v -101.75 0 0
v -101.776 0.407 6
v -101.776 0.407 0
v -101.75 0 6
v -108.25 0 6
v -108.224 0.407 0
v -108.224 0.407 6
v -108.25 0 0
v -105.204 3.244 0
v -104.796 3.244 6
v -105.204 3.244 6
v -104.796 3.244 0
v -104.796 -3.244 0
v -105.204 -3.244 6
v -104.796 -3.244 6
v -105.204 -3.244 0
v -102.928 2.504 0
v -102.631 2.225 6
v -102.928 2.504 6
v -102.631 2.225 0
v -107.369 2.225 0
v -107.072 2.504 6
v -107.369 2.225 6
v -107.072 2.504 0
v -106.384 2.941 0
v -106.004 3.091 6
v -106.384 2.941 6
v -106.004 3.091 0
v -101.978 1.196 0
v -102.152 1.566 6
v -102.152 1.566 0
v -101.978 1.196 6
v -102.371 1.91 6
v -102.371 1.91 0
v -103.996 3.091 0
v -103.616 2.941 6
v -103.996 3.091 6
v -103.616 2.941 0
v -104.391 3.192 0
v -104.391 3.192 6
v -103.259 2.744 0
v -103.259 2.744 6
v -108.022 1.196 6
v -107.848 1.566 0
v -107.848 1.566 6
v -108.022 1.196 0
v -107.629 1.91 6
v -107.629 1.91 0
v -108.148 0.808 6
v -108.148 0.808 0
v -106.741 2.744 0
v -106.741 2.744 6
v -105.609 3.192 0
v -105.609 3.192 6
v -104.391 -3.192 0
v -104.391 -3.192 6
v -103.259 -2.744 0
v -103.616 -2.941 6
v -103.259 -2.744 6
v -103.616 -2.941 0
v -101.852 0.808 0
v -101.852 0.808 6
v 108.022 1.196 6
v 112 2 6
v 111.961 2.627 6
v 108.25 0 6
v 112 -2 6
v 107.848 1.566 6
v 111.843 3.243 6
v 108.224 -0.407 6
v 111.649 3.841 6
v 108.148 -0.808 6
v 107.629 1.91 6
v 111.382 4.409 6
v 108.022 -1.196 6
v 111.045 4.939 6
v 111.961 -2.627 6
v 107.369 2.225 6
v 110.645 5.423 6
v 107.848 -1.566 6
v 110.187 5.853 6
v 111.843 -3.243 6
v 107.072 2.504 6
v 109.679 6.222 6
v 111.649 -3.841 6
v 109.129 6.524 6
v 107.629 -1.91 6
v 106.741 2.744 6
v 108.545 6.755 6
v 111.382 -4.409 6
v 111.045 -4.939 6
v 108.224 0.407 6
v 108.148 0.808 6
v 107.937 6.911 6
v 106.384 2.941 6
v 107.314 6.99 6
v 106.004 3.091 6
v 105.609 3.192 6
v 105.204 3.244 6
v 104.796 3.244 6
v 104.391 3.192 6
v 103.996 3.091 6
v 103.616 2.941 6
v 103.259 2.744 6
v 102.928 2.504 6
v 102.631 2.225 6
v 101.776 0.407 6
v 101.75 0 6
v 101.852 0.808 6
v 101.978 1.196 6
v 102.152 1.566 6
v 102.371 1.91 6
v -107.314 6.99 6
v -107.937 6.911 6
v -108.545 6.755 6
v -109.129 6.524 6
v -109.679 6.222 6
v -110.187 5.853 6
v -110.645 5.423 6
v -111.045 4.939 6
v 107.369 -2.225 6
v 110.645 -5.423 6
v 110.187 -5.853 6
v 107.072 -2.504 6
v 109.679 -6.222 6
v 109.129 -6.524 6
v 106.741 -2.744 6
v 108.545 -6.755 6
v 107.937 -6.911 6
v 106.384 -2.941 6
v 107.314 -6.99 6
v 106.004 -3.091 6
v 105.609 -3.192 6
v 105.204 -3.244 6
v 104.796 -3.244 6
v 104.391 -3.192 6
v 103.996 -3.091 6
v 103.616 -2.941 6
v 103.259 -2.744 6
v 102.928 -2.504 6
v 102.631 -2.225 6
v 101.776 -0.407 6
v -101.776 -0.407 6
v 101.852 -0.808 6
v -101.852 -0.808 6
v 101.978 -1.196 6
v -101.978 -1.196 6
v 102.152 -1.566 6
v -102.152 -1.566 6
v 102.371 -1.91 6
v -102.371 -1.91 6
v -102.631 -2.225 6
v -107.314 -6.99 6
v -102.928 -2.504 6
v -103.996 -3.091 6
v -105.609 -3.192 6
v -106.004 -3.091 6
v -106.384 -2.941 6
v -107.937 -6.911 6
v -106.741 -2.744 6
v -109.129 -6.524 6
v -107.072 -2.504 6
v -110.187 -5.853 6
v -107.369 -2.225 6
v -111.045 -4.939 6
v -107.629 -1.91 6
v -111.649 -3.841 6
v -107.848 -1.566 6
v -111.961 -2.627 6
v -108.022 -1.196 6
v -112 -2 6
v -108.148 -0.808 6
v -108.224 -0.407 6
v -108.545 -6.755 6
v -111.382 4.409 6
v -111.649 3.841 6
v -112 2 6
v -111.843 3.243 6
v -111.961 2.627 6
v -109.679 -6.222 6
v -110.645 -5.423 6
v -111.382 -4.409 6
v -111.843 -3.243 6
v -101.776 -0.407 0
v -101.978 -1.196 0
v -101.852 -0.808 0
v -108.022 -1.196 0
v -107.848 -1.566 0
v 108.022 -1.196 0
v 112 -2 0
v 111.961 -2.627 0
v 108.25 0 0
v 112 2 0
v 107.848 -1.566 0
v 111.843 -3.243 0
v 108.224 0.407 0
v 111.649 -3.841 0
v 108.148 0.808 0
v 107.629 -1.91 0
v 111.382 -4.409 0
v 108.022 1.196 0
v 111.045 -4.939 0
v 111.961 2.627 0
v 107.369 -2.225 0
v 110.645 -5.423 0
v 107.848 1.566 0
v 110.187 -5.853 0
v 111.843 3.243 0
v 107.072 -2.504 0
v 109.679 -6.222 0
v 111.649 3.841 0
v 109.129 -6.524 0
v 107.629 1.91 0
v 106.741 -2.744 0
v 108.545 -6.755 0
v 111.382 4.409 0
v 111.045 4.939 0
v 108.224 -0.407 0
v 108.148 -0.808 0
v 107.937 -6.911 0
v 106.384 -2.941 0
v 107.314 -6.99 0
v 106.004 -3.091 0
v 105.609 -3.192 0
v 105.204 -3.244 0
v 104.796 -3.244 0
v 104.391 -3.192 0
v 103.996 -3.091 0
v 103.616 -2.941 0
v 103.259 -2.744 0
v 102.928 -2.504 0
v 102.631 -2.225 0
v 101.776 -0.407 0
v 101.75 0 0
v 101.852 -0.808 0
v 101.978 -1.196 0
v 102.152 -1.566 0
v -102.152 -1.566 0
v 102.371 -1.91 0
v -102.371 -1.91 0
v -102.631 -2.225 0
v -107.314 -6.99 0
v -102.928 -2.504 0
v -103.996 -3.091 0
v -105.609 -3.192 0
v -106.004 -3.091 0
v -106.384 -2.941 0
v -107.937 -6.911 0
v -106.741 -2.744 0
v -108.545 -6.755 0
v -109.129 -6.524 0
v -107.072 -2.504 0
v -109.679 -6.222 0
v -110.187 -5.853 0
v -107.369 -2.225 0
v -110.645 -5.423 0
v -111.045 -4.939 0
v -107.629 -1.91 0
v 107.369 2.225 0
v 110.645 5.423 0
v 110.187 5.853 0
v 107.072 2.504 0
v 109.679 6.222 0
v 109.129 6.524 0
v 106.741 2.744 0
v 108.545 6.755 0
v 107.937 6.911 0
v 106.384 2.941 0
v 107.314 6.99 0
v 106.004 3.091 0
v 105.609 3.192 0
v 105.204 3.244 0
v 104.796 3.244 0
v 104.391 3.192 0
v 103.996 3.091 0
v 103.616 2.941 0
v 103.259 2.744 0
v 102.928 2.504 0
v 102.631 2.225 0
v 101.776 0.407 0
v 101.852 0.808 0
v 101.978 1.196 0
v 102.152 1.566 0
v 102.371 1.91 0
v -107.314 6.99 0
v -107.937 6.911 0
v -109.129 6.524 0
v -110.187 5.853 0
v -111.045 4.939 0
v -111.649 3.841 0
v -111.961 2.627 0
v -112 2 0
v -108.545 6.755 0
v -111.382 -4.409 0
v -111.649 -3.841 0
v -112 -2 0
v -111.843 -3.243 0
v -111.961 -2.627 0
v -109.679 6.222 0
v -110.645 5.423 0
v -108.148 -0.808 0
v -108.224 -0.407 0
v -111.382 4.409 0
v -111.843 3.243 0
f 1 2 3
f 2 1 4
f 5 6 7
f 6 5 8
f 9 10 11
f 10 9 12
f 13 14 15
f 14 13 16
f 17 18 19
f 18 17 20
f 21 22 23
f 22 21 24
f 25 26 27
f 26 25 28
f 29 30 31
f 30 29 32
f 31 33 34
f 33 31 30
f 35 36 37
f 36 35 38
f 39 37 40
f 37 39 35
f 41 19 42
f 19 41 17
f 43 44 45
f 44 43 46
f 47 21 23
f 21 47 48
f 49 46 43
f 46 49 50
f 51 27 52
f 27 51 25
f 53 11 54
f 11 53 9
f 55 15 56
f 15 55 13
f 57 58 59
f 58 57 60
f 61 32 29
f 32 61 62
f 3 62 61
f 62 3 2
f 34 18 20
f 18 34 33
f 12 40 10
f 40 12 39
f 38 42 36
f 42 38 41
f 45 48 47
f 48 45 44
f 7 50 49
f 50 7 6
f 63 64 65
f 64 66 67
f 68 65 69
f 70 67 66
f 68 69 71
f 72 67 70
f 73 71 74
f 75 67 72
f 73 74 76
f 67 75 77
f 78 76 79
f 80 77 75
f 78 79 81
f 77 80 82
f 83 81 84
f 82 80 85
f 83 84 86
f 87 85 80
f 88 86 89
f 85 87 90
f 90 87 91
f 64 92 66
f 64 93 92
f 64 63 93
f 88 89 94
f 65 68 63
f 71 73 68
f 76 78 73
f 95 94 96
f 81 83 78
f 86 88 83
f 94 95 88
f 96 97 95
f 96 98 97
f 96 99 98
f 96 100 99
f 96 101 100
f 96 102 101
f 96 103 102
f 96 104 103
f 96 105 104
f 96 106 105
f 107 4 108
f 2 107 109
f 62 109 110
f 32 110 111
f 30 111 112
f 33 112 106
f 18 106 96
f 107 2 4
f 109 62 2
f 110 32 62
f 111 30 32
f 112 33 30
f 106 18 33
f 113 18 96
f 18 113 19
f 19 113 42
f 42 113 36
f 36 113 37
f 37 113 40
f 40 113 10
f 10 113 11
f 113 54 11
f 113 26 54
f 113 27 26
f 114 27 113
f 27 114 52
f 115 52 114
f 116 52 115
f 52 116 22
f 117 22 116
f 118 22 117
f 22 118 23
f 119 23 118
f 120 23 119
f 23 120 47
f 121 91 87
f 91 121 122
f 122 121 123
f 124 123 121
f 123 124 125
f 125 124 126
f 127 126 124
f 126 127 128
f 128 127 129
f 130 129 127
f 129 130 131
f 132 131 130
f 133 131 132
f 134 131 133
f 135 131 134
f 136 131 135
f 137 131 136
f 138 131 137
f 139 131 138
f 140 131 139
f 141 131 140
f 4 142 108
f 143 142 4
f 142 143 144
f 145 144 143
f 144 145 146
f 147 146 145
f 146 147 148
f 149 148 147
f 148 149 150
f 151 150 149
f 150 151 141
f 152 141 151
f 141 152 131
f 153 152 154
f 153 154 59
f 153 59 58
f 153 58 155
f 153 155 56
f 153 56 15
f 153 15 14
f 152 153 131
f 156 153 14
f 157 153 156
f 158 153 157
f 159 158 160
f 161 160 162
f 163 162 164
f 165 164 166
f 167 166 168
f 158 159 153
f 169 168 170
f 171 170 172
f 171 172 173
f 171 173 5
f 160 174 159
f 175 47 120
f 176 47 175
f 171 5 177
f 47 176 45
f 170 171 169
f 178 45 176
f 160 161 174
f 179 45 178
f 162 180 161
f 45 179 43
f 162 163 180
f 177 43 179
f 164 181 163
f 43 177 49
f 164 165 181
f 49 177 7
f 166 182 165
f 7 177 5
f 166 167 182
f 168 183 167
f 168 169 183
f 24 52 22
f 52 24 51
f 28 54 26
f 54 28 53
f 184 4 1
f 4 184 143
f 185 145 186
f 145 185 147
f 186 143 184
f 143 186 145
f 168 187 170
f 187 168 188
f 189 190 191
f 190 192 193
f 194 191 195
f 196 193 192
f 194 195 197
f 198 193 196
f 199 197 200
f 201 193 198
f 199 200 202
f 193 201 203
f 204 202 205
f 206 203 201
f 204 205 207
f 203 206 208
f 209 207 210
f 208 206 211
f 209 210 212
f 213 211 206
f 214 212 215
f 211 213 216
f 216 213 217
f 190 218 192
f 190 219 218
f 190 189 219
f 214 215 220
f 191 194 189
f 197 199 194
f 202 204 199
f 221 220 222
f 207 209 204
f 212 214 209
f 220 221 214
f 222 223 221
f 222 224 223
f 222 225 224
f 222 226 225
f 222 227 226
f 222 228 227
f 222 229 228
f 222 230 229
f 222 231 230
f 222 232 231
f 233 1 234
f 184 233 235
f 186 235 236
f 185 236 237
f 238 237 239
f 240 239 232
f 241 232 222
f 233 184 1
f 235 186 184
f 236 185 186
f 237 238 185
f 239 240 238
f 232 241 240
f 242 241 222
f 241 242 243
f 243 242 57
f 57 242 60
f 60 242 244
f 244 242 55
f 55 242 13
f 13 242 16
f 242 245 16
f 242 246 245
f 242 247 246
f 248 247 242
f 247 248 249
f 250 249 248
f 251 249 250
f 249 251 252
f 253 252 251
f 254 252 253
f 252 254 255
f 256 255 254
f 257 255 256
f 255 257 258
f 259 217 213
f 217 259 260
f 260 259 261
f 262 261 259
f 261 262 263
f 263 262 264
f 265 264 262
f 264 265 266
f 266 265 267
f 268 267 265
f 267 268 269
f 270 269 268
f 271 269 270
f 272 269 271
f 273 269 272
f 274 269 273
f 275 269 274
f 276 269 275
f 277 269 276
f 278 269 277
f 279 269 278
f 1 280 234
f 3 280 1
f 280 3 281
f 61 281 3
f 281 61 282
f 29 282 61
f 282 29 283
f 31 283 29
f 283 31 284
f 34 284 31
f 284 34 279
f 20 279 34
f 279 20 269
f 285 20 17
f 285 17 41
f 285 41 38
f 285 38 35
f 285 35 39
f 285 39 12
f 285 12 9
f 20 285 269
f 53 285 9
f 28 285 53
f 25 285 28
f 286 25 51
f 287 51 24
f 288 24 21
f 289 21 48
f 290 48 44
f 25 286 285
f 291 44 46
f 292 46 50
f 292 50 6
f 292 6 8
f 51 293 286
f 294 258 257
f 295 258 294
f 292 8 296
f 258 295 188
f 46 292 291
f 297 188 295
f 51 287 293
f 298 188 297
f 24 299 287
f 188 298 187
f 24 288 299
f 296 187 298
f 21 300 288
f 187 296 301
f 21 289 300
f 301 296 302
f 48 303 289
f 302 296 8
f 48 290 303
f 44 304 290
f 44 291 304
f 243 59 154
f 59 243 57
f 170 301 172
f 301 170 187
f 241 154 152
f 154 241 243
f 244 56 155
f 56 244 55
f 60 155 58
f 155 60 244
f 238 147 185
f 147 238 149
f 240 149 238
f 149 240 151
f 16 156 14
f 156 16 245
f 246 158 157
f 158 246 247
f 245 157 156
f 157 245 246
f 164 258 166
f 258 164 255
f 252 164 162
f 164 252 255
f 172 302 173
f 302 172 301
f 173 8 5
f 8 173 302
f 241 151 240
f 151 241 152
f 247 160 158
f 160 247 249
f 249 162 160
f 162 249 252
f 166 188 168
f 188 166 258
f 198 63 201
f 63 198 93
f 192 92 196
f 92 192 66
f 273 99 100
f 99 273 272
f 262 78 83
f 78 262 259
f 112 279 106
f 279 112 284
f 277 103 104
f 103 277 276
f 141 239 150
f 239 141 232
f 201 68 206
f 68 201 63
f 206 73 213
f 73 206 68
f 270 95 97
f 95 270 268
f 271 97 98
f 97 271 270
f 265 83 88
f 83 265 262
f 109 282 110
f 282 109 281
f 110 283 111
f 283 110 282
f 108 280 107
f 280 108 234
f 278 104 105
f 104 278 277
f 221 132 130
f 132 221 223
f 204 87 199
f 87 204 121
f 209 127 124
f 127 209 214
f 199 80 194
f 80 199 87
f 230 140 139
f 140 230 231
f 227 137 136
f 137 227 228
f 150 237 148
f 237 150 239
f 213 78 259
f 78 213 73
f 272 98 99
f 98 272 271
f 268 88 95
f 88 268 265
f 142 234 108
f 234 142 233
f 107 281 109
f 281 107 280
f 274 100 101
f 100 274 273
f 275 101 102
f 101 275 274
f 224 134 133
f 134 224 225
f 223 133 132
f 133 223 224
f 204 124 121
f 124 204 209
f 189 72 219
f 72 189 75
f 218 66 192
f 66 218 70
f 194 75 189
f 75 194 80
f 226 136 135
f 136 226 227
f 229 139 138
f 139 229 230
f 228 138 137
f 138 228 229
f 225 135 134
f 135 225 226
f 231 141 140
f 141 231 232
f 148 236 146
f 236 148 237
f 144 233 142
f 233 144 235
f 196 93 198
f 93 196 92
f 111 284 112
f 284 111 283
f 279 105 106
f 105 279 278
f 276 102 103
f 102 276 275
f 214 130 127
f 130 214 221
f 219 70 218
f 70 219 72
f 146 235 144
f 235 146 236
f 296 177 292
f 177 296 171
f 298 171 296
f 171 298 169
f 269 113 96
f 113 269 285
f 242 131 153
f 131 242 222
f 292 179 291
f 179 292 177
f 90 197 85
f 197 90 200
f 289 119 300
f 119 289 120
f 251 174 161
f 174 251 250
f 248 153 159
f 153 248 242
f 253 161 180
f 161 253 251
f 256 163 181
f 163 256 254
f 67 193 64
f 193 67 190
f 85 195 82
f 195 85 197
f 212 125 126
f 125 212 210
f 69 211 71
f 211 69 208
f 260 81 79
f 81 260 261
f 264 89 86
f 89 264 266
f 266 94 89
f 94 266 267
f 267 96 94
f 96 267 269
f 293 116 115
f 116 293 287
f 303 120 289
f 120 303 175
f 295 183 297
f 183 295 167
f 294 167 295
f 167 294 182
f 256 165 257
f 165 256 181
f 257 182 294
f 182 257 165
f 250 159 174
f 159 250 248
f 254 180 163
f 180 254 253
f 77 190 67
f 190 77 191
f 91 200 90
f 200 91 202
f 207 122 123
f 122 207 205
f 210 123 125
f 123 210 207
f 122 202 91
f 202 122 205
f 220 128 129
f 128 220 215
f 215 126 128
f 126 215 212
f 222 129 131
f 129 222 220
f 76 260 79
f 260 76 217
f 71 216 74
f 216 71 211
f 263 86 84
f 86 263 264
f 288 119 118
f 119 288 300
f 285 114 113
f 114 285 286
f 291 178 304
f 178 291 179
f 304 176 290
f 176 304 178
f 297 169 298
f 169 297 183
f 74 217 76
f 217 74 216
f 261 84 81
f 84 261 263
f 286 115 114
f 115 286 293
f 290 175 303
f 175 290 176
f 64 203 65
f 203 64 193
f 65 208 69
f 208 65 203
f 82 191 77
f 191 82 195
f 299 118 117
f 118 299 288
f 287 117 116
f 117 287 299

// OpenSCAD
$fn = 50;


difference() {
	union() {
		hull() {
			translate(v = [-107.0000000000, 2.0000000000, 0]) {
				cylinder(h = 6, r = 5);
			}
			translate(v = [107.0000000000, 2.0000000000, 0]) {
				cylinder(h = 6, r = 5);
			}
			translate(v = [-107.0000000000, -2.0000000000, 0]) {
				cylinder(h = 6, r = 5);
			}
			translate(v = [107.0000000000, -2.0000000000, 0]) {
				cylinder(h = 6, r = 5);
			}
		}
	}
	union() {
		translate(v = [-105.0000000000, 0.0000000000, 0]) {
			cylinder(h = 6, r = 3.2500000000);
		}
		translate(v = [105.0000000000, 0.0000000000, 0]) {
			cylinder(h = 6, r = 3.2500000000);
		}
		translate(v = [-105.0000000000, 0.0000000000, 0]) {
			cylinder(h = 6, r = 1.8000000000);
		}
		translate(v = [105.0000000000, 0.0000000000, 0]) {
			cylinder(h = 6, r = 1.8000000000);
		}
		translate(v = [-105.0000000000, 0.0000000000, 0]) {
			cylinder(h = 6, r = 1.8000000000);
		}
		translate(v = [105.0000000000, 0.0000000000, 0]) {
			cylinder(h = 6, r = 1.8000000000);
		}
		translate(v = [-105.0000000000, 0.0000000000, 0]) {
			cylinder(h = 6, r = 1.8000000000);
		}
		translate(v = [105.0000000000, 0.0000000000, 0]) {
			cylinder(h = 6, r = 1.8000000000);
		}
	}
}
